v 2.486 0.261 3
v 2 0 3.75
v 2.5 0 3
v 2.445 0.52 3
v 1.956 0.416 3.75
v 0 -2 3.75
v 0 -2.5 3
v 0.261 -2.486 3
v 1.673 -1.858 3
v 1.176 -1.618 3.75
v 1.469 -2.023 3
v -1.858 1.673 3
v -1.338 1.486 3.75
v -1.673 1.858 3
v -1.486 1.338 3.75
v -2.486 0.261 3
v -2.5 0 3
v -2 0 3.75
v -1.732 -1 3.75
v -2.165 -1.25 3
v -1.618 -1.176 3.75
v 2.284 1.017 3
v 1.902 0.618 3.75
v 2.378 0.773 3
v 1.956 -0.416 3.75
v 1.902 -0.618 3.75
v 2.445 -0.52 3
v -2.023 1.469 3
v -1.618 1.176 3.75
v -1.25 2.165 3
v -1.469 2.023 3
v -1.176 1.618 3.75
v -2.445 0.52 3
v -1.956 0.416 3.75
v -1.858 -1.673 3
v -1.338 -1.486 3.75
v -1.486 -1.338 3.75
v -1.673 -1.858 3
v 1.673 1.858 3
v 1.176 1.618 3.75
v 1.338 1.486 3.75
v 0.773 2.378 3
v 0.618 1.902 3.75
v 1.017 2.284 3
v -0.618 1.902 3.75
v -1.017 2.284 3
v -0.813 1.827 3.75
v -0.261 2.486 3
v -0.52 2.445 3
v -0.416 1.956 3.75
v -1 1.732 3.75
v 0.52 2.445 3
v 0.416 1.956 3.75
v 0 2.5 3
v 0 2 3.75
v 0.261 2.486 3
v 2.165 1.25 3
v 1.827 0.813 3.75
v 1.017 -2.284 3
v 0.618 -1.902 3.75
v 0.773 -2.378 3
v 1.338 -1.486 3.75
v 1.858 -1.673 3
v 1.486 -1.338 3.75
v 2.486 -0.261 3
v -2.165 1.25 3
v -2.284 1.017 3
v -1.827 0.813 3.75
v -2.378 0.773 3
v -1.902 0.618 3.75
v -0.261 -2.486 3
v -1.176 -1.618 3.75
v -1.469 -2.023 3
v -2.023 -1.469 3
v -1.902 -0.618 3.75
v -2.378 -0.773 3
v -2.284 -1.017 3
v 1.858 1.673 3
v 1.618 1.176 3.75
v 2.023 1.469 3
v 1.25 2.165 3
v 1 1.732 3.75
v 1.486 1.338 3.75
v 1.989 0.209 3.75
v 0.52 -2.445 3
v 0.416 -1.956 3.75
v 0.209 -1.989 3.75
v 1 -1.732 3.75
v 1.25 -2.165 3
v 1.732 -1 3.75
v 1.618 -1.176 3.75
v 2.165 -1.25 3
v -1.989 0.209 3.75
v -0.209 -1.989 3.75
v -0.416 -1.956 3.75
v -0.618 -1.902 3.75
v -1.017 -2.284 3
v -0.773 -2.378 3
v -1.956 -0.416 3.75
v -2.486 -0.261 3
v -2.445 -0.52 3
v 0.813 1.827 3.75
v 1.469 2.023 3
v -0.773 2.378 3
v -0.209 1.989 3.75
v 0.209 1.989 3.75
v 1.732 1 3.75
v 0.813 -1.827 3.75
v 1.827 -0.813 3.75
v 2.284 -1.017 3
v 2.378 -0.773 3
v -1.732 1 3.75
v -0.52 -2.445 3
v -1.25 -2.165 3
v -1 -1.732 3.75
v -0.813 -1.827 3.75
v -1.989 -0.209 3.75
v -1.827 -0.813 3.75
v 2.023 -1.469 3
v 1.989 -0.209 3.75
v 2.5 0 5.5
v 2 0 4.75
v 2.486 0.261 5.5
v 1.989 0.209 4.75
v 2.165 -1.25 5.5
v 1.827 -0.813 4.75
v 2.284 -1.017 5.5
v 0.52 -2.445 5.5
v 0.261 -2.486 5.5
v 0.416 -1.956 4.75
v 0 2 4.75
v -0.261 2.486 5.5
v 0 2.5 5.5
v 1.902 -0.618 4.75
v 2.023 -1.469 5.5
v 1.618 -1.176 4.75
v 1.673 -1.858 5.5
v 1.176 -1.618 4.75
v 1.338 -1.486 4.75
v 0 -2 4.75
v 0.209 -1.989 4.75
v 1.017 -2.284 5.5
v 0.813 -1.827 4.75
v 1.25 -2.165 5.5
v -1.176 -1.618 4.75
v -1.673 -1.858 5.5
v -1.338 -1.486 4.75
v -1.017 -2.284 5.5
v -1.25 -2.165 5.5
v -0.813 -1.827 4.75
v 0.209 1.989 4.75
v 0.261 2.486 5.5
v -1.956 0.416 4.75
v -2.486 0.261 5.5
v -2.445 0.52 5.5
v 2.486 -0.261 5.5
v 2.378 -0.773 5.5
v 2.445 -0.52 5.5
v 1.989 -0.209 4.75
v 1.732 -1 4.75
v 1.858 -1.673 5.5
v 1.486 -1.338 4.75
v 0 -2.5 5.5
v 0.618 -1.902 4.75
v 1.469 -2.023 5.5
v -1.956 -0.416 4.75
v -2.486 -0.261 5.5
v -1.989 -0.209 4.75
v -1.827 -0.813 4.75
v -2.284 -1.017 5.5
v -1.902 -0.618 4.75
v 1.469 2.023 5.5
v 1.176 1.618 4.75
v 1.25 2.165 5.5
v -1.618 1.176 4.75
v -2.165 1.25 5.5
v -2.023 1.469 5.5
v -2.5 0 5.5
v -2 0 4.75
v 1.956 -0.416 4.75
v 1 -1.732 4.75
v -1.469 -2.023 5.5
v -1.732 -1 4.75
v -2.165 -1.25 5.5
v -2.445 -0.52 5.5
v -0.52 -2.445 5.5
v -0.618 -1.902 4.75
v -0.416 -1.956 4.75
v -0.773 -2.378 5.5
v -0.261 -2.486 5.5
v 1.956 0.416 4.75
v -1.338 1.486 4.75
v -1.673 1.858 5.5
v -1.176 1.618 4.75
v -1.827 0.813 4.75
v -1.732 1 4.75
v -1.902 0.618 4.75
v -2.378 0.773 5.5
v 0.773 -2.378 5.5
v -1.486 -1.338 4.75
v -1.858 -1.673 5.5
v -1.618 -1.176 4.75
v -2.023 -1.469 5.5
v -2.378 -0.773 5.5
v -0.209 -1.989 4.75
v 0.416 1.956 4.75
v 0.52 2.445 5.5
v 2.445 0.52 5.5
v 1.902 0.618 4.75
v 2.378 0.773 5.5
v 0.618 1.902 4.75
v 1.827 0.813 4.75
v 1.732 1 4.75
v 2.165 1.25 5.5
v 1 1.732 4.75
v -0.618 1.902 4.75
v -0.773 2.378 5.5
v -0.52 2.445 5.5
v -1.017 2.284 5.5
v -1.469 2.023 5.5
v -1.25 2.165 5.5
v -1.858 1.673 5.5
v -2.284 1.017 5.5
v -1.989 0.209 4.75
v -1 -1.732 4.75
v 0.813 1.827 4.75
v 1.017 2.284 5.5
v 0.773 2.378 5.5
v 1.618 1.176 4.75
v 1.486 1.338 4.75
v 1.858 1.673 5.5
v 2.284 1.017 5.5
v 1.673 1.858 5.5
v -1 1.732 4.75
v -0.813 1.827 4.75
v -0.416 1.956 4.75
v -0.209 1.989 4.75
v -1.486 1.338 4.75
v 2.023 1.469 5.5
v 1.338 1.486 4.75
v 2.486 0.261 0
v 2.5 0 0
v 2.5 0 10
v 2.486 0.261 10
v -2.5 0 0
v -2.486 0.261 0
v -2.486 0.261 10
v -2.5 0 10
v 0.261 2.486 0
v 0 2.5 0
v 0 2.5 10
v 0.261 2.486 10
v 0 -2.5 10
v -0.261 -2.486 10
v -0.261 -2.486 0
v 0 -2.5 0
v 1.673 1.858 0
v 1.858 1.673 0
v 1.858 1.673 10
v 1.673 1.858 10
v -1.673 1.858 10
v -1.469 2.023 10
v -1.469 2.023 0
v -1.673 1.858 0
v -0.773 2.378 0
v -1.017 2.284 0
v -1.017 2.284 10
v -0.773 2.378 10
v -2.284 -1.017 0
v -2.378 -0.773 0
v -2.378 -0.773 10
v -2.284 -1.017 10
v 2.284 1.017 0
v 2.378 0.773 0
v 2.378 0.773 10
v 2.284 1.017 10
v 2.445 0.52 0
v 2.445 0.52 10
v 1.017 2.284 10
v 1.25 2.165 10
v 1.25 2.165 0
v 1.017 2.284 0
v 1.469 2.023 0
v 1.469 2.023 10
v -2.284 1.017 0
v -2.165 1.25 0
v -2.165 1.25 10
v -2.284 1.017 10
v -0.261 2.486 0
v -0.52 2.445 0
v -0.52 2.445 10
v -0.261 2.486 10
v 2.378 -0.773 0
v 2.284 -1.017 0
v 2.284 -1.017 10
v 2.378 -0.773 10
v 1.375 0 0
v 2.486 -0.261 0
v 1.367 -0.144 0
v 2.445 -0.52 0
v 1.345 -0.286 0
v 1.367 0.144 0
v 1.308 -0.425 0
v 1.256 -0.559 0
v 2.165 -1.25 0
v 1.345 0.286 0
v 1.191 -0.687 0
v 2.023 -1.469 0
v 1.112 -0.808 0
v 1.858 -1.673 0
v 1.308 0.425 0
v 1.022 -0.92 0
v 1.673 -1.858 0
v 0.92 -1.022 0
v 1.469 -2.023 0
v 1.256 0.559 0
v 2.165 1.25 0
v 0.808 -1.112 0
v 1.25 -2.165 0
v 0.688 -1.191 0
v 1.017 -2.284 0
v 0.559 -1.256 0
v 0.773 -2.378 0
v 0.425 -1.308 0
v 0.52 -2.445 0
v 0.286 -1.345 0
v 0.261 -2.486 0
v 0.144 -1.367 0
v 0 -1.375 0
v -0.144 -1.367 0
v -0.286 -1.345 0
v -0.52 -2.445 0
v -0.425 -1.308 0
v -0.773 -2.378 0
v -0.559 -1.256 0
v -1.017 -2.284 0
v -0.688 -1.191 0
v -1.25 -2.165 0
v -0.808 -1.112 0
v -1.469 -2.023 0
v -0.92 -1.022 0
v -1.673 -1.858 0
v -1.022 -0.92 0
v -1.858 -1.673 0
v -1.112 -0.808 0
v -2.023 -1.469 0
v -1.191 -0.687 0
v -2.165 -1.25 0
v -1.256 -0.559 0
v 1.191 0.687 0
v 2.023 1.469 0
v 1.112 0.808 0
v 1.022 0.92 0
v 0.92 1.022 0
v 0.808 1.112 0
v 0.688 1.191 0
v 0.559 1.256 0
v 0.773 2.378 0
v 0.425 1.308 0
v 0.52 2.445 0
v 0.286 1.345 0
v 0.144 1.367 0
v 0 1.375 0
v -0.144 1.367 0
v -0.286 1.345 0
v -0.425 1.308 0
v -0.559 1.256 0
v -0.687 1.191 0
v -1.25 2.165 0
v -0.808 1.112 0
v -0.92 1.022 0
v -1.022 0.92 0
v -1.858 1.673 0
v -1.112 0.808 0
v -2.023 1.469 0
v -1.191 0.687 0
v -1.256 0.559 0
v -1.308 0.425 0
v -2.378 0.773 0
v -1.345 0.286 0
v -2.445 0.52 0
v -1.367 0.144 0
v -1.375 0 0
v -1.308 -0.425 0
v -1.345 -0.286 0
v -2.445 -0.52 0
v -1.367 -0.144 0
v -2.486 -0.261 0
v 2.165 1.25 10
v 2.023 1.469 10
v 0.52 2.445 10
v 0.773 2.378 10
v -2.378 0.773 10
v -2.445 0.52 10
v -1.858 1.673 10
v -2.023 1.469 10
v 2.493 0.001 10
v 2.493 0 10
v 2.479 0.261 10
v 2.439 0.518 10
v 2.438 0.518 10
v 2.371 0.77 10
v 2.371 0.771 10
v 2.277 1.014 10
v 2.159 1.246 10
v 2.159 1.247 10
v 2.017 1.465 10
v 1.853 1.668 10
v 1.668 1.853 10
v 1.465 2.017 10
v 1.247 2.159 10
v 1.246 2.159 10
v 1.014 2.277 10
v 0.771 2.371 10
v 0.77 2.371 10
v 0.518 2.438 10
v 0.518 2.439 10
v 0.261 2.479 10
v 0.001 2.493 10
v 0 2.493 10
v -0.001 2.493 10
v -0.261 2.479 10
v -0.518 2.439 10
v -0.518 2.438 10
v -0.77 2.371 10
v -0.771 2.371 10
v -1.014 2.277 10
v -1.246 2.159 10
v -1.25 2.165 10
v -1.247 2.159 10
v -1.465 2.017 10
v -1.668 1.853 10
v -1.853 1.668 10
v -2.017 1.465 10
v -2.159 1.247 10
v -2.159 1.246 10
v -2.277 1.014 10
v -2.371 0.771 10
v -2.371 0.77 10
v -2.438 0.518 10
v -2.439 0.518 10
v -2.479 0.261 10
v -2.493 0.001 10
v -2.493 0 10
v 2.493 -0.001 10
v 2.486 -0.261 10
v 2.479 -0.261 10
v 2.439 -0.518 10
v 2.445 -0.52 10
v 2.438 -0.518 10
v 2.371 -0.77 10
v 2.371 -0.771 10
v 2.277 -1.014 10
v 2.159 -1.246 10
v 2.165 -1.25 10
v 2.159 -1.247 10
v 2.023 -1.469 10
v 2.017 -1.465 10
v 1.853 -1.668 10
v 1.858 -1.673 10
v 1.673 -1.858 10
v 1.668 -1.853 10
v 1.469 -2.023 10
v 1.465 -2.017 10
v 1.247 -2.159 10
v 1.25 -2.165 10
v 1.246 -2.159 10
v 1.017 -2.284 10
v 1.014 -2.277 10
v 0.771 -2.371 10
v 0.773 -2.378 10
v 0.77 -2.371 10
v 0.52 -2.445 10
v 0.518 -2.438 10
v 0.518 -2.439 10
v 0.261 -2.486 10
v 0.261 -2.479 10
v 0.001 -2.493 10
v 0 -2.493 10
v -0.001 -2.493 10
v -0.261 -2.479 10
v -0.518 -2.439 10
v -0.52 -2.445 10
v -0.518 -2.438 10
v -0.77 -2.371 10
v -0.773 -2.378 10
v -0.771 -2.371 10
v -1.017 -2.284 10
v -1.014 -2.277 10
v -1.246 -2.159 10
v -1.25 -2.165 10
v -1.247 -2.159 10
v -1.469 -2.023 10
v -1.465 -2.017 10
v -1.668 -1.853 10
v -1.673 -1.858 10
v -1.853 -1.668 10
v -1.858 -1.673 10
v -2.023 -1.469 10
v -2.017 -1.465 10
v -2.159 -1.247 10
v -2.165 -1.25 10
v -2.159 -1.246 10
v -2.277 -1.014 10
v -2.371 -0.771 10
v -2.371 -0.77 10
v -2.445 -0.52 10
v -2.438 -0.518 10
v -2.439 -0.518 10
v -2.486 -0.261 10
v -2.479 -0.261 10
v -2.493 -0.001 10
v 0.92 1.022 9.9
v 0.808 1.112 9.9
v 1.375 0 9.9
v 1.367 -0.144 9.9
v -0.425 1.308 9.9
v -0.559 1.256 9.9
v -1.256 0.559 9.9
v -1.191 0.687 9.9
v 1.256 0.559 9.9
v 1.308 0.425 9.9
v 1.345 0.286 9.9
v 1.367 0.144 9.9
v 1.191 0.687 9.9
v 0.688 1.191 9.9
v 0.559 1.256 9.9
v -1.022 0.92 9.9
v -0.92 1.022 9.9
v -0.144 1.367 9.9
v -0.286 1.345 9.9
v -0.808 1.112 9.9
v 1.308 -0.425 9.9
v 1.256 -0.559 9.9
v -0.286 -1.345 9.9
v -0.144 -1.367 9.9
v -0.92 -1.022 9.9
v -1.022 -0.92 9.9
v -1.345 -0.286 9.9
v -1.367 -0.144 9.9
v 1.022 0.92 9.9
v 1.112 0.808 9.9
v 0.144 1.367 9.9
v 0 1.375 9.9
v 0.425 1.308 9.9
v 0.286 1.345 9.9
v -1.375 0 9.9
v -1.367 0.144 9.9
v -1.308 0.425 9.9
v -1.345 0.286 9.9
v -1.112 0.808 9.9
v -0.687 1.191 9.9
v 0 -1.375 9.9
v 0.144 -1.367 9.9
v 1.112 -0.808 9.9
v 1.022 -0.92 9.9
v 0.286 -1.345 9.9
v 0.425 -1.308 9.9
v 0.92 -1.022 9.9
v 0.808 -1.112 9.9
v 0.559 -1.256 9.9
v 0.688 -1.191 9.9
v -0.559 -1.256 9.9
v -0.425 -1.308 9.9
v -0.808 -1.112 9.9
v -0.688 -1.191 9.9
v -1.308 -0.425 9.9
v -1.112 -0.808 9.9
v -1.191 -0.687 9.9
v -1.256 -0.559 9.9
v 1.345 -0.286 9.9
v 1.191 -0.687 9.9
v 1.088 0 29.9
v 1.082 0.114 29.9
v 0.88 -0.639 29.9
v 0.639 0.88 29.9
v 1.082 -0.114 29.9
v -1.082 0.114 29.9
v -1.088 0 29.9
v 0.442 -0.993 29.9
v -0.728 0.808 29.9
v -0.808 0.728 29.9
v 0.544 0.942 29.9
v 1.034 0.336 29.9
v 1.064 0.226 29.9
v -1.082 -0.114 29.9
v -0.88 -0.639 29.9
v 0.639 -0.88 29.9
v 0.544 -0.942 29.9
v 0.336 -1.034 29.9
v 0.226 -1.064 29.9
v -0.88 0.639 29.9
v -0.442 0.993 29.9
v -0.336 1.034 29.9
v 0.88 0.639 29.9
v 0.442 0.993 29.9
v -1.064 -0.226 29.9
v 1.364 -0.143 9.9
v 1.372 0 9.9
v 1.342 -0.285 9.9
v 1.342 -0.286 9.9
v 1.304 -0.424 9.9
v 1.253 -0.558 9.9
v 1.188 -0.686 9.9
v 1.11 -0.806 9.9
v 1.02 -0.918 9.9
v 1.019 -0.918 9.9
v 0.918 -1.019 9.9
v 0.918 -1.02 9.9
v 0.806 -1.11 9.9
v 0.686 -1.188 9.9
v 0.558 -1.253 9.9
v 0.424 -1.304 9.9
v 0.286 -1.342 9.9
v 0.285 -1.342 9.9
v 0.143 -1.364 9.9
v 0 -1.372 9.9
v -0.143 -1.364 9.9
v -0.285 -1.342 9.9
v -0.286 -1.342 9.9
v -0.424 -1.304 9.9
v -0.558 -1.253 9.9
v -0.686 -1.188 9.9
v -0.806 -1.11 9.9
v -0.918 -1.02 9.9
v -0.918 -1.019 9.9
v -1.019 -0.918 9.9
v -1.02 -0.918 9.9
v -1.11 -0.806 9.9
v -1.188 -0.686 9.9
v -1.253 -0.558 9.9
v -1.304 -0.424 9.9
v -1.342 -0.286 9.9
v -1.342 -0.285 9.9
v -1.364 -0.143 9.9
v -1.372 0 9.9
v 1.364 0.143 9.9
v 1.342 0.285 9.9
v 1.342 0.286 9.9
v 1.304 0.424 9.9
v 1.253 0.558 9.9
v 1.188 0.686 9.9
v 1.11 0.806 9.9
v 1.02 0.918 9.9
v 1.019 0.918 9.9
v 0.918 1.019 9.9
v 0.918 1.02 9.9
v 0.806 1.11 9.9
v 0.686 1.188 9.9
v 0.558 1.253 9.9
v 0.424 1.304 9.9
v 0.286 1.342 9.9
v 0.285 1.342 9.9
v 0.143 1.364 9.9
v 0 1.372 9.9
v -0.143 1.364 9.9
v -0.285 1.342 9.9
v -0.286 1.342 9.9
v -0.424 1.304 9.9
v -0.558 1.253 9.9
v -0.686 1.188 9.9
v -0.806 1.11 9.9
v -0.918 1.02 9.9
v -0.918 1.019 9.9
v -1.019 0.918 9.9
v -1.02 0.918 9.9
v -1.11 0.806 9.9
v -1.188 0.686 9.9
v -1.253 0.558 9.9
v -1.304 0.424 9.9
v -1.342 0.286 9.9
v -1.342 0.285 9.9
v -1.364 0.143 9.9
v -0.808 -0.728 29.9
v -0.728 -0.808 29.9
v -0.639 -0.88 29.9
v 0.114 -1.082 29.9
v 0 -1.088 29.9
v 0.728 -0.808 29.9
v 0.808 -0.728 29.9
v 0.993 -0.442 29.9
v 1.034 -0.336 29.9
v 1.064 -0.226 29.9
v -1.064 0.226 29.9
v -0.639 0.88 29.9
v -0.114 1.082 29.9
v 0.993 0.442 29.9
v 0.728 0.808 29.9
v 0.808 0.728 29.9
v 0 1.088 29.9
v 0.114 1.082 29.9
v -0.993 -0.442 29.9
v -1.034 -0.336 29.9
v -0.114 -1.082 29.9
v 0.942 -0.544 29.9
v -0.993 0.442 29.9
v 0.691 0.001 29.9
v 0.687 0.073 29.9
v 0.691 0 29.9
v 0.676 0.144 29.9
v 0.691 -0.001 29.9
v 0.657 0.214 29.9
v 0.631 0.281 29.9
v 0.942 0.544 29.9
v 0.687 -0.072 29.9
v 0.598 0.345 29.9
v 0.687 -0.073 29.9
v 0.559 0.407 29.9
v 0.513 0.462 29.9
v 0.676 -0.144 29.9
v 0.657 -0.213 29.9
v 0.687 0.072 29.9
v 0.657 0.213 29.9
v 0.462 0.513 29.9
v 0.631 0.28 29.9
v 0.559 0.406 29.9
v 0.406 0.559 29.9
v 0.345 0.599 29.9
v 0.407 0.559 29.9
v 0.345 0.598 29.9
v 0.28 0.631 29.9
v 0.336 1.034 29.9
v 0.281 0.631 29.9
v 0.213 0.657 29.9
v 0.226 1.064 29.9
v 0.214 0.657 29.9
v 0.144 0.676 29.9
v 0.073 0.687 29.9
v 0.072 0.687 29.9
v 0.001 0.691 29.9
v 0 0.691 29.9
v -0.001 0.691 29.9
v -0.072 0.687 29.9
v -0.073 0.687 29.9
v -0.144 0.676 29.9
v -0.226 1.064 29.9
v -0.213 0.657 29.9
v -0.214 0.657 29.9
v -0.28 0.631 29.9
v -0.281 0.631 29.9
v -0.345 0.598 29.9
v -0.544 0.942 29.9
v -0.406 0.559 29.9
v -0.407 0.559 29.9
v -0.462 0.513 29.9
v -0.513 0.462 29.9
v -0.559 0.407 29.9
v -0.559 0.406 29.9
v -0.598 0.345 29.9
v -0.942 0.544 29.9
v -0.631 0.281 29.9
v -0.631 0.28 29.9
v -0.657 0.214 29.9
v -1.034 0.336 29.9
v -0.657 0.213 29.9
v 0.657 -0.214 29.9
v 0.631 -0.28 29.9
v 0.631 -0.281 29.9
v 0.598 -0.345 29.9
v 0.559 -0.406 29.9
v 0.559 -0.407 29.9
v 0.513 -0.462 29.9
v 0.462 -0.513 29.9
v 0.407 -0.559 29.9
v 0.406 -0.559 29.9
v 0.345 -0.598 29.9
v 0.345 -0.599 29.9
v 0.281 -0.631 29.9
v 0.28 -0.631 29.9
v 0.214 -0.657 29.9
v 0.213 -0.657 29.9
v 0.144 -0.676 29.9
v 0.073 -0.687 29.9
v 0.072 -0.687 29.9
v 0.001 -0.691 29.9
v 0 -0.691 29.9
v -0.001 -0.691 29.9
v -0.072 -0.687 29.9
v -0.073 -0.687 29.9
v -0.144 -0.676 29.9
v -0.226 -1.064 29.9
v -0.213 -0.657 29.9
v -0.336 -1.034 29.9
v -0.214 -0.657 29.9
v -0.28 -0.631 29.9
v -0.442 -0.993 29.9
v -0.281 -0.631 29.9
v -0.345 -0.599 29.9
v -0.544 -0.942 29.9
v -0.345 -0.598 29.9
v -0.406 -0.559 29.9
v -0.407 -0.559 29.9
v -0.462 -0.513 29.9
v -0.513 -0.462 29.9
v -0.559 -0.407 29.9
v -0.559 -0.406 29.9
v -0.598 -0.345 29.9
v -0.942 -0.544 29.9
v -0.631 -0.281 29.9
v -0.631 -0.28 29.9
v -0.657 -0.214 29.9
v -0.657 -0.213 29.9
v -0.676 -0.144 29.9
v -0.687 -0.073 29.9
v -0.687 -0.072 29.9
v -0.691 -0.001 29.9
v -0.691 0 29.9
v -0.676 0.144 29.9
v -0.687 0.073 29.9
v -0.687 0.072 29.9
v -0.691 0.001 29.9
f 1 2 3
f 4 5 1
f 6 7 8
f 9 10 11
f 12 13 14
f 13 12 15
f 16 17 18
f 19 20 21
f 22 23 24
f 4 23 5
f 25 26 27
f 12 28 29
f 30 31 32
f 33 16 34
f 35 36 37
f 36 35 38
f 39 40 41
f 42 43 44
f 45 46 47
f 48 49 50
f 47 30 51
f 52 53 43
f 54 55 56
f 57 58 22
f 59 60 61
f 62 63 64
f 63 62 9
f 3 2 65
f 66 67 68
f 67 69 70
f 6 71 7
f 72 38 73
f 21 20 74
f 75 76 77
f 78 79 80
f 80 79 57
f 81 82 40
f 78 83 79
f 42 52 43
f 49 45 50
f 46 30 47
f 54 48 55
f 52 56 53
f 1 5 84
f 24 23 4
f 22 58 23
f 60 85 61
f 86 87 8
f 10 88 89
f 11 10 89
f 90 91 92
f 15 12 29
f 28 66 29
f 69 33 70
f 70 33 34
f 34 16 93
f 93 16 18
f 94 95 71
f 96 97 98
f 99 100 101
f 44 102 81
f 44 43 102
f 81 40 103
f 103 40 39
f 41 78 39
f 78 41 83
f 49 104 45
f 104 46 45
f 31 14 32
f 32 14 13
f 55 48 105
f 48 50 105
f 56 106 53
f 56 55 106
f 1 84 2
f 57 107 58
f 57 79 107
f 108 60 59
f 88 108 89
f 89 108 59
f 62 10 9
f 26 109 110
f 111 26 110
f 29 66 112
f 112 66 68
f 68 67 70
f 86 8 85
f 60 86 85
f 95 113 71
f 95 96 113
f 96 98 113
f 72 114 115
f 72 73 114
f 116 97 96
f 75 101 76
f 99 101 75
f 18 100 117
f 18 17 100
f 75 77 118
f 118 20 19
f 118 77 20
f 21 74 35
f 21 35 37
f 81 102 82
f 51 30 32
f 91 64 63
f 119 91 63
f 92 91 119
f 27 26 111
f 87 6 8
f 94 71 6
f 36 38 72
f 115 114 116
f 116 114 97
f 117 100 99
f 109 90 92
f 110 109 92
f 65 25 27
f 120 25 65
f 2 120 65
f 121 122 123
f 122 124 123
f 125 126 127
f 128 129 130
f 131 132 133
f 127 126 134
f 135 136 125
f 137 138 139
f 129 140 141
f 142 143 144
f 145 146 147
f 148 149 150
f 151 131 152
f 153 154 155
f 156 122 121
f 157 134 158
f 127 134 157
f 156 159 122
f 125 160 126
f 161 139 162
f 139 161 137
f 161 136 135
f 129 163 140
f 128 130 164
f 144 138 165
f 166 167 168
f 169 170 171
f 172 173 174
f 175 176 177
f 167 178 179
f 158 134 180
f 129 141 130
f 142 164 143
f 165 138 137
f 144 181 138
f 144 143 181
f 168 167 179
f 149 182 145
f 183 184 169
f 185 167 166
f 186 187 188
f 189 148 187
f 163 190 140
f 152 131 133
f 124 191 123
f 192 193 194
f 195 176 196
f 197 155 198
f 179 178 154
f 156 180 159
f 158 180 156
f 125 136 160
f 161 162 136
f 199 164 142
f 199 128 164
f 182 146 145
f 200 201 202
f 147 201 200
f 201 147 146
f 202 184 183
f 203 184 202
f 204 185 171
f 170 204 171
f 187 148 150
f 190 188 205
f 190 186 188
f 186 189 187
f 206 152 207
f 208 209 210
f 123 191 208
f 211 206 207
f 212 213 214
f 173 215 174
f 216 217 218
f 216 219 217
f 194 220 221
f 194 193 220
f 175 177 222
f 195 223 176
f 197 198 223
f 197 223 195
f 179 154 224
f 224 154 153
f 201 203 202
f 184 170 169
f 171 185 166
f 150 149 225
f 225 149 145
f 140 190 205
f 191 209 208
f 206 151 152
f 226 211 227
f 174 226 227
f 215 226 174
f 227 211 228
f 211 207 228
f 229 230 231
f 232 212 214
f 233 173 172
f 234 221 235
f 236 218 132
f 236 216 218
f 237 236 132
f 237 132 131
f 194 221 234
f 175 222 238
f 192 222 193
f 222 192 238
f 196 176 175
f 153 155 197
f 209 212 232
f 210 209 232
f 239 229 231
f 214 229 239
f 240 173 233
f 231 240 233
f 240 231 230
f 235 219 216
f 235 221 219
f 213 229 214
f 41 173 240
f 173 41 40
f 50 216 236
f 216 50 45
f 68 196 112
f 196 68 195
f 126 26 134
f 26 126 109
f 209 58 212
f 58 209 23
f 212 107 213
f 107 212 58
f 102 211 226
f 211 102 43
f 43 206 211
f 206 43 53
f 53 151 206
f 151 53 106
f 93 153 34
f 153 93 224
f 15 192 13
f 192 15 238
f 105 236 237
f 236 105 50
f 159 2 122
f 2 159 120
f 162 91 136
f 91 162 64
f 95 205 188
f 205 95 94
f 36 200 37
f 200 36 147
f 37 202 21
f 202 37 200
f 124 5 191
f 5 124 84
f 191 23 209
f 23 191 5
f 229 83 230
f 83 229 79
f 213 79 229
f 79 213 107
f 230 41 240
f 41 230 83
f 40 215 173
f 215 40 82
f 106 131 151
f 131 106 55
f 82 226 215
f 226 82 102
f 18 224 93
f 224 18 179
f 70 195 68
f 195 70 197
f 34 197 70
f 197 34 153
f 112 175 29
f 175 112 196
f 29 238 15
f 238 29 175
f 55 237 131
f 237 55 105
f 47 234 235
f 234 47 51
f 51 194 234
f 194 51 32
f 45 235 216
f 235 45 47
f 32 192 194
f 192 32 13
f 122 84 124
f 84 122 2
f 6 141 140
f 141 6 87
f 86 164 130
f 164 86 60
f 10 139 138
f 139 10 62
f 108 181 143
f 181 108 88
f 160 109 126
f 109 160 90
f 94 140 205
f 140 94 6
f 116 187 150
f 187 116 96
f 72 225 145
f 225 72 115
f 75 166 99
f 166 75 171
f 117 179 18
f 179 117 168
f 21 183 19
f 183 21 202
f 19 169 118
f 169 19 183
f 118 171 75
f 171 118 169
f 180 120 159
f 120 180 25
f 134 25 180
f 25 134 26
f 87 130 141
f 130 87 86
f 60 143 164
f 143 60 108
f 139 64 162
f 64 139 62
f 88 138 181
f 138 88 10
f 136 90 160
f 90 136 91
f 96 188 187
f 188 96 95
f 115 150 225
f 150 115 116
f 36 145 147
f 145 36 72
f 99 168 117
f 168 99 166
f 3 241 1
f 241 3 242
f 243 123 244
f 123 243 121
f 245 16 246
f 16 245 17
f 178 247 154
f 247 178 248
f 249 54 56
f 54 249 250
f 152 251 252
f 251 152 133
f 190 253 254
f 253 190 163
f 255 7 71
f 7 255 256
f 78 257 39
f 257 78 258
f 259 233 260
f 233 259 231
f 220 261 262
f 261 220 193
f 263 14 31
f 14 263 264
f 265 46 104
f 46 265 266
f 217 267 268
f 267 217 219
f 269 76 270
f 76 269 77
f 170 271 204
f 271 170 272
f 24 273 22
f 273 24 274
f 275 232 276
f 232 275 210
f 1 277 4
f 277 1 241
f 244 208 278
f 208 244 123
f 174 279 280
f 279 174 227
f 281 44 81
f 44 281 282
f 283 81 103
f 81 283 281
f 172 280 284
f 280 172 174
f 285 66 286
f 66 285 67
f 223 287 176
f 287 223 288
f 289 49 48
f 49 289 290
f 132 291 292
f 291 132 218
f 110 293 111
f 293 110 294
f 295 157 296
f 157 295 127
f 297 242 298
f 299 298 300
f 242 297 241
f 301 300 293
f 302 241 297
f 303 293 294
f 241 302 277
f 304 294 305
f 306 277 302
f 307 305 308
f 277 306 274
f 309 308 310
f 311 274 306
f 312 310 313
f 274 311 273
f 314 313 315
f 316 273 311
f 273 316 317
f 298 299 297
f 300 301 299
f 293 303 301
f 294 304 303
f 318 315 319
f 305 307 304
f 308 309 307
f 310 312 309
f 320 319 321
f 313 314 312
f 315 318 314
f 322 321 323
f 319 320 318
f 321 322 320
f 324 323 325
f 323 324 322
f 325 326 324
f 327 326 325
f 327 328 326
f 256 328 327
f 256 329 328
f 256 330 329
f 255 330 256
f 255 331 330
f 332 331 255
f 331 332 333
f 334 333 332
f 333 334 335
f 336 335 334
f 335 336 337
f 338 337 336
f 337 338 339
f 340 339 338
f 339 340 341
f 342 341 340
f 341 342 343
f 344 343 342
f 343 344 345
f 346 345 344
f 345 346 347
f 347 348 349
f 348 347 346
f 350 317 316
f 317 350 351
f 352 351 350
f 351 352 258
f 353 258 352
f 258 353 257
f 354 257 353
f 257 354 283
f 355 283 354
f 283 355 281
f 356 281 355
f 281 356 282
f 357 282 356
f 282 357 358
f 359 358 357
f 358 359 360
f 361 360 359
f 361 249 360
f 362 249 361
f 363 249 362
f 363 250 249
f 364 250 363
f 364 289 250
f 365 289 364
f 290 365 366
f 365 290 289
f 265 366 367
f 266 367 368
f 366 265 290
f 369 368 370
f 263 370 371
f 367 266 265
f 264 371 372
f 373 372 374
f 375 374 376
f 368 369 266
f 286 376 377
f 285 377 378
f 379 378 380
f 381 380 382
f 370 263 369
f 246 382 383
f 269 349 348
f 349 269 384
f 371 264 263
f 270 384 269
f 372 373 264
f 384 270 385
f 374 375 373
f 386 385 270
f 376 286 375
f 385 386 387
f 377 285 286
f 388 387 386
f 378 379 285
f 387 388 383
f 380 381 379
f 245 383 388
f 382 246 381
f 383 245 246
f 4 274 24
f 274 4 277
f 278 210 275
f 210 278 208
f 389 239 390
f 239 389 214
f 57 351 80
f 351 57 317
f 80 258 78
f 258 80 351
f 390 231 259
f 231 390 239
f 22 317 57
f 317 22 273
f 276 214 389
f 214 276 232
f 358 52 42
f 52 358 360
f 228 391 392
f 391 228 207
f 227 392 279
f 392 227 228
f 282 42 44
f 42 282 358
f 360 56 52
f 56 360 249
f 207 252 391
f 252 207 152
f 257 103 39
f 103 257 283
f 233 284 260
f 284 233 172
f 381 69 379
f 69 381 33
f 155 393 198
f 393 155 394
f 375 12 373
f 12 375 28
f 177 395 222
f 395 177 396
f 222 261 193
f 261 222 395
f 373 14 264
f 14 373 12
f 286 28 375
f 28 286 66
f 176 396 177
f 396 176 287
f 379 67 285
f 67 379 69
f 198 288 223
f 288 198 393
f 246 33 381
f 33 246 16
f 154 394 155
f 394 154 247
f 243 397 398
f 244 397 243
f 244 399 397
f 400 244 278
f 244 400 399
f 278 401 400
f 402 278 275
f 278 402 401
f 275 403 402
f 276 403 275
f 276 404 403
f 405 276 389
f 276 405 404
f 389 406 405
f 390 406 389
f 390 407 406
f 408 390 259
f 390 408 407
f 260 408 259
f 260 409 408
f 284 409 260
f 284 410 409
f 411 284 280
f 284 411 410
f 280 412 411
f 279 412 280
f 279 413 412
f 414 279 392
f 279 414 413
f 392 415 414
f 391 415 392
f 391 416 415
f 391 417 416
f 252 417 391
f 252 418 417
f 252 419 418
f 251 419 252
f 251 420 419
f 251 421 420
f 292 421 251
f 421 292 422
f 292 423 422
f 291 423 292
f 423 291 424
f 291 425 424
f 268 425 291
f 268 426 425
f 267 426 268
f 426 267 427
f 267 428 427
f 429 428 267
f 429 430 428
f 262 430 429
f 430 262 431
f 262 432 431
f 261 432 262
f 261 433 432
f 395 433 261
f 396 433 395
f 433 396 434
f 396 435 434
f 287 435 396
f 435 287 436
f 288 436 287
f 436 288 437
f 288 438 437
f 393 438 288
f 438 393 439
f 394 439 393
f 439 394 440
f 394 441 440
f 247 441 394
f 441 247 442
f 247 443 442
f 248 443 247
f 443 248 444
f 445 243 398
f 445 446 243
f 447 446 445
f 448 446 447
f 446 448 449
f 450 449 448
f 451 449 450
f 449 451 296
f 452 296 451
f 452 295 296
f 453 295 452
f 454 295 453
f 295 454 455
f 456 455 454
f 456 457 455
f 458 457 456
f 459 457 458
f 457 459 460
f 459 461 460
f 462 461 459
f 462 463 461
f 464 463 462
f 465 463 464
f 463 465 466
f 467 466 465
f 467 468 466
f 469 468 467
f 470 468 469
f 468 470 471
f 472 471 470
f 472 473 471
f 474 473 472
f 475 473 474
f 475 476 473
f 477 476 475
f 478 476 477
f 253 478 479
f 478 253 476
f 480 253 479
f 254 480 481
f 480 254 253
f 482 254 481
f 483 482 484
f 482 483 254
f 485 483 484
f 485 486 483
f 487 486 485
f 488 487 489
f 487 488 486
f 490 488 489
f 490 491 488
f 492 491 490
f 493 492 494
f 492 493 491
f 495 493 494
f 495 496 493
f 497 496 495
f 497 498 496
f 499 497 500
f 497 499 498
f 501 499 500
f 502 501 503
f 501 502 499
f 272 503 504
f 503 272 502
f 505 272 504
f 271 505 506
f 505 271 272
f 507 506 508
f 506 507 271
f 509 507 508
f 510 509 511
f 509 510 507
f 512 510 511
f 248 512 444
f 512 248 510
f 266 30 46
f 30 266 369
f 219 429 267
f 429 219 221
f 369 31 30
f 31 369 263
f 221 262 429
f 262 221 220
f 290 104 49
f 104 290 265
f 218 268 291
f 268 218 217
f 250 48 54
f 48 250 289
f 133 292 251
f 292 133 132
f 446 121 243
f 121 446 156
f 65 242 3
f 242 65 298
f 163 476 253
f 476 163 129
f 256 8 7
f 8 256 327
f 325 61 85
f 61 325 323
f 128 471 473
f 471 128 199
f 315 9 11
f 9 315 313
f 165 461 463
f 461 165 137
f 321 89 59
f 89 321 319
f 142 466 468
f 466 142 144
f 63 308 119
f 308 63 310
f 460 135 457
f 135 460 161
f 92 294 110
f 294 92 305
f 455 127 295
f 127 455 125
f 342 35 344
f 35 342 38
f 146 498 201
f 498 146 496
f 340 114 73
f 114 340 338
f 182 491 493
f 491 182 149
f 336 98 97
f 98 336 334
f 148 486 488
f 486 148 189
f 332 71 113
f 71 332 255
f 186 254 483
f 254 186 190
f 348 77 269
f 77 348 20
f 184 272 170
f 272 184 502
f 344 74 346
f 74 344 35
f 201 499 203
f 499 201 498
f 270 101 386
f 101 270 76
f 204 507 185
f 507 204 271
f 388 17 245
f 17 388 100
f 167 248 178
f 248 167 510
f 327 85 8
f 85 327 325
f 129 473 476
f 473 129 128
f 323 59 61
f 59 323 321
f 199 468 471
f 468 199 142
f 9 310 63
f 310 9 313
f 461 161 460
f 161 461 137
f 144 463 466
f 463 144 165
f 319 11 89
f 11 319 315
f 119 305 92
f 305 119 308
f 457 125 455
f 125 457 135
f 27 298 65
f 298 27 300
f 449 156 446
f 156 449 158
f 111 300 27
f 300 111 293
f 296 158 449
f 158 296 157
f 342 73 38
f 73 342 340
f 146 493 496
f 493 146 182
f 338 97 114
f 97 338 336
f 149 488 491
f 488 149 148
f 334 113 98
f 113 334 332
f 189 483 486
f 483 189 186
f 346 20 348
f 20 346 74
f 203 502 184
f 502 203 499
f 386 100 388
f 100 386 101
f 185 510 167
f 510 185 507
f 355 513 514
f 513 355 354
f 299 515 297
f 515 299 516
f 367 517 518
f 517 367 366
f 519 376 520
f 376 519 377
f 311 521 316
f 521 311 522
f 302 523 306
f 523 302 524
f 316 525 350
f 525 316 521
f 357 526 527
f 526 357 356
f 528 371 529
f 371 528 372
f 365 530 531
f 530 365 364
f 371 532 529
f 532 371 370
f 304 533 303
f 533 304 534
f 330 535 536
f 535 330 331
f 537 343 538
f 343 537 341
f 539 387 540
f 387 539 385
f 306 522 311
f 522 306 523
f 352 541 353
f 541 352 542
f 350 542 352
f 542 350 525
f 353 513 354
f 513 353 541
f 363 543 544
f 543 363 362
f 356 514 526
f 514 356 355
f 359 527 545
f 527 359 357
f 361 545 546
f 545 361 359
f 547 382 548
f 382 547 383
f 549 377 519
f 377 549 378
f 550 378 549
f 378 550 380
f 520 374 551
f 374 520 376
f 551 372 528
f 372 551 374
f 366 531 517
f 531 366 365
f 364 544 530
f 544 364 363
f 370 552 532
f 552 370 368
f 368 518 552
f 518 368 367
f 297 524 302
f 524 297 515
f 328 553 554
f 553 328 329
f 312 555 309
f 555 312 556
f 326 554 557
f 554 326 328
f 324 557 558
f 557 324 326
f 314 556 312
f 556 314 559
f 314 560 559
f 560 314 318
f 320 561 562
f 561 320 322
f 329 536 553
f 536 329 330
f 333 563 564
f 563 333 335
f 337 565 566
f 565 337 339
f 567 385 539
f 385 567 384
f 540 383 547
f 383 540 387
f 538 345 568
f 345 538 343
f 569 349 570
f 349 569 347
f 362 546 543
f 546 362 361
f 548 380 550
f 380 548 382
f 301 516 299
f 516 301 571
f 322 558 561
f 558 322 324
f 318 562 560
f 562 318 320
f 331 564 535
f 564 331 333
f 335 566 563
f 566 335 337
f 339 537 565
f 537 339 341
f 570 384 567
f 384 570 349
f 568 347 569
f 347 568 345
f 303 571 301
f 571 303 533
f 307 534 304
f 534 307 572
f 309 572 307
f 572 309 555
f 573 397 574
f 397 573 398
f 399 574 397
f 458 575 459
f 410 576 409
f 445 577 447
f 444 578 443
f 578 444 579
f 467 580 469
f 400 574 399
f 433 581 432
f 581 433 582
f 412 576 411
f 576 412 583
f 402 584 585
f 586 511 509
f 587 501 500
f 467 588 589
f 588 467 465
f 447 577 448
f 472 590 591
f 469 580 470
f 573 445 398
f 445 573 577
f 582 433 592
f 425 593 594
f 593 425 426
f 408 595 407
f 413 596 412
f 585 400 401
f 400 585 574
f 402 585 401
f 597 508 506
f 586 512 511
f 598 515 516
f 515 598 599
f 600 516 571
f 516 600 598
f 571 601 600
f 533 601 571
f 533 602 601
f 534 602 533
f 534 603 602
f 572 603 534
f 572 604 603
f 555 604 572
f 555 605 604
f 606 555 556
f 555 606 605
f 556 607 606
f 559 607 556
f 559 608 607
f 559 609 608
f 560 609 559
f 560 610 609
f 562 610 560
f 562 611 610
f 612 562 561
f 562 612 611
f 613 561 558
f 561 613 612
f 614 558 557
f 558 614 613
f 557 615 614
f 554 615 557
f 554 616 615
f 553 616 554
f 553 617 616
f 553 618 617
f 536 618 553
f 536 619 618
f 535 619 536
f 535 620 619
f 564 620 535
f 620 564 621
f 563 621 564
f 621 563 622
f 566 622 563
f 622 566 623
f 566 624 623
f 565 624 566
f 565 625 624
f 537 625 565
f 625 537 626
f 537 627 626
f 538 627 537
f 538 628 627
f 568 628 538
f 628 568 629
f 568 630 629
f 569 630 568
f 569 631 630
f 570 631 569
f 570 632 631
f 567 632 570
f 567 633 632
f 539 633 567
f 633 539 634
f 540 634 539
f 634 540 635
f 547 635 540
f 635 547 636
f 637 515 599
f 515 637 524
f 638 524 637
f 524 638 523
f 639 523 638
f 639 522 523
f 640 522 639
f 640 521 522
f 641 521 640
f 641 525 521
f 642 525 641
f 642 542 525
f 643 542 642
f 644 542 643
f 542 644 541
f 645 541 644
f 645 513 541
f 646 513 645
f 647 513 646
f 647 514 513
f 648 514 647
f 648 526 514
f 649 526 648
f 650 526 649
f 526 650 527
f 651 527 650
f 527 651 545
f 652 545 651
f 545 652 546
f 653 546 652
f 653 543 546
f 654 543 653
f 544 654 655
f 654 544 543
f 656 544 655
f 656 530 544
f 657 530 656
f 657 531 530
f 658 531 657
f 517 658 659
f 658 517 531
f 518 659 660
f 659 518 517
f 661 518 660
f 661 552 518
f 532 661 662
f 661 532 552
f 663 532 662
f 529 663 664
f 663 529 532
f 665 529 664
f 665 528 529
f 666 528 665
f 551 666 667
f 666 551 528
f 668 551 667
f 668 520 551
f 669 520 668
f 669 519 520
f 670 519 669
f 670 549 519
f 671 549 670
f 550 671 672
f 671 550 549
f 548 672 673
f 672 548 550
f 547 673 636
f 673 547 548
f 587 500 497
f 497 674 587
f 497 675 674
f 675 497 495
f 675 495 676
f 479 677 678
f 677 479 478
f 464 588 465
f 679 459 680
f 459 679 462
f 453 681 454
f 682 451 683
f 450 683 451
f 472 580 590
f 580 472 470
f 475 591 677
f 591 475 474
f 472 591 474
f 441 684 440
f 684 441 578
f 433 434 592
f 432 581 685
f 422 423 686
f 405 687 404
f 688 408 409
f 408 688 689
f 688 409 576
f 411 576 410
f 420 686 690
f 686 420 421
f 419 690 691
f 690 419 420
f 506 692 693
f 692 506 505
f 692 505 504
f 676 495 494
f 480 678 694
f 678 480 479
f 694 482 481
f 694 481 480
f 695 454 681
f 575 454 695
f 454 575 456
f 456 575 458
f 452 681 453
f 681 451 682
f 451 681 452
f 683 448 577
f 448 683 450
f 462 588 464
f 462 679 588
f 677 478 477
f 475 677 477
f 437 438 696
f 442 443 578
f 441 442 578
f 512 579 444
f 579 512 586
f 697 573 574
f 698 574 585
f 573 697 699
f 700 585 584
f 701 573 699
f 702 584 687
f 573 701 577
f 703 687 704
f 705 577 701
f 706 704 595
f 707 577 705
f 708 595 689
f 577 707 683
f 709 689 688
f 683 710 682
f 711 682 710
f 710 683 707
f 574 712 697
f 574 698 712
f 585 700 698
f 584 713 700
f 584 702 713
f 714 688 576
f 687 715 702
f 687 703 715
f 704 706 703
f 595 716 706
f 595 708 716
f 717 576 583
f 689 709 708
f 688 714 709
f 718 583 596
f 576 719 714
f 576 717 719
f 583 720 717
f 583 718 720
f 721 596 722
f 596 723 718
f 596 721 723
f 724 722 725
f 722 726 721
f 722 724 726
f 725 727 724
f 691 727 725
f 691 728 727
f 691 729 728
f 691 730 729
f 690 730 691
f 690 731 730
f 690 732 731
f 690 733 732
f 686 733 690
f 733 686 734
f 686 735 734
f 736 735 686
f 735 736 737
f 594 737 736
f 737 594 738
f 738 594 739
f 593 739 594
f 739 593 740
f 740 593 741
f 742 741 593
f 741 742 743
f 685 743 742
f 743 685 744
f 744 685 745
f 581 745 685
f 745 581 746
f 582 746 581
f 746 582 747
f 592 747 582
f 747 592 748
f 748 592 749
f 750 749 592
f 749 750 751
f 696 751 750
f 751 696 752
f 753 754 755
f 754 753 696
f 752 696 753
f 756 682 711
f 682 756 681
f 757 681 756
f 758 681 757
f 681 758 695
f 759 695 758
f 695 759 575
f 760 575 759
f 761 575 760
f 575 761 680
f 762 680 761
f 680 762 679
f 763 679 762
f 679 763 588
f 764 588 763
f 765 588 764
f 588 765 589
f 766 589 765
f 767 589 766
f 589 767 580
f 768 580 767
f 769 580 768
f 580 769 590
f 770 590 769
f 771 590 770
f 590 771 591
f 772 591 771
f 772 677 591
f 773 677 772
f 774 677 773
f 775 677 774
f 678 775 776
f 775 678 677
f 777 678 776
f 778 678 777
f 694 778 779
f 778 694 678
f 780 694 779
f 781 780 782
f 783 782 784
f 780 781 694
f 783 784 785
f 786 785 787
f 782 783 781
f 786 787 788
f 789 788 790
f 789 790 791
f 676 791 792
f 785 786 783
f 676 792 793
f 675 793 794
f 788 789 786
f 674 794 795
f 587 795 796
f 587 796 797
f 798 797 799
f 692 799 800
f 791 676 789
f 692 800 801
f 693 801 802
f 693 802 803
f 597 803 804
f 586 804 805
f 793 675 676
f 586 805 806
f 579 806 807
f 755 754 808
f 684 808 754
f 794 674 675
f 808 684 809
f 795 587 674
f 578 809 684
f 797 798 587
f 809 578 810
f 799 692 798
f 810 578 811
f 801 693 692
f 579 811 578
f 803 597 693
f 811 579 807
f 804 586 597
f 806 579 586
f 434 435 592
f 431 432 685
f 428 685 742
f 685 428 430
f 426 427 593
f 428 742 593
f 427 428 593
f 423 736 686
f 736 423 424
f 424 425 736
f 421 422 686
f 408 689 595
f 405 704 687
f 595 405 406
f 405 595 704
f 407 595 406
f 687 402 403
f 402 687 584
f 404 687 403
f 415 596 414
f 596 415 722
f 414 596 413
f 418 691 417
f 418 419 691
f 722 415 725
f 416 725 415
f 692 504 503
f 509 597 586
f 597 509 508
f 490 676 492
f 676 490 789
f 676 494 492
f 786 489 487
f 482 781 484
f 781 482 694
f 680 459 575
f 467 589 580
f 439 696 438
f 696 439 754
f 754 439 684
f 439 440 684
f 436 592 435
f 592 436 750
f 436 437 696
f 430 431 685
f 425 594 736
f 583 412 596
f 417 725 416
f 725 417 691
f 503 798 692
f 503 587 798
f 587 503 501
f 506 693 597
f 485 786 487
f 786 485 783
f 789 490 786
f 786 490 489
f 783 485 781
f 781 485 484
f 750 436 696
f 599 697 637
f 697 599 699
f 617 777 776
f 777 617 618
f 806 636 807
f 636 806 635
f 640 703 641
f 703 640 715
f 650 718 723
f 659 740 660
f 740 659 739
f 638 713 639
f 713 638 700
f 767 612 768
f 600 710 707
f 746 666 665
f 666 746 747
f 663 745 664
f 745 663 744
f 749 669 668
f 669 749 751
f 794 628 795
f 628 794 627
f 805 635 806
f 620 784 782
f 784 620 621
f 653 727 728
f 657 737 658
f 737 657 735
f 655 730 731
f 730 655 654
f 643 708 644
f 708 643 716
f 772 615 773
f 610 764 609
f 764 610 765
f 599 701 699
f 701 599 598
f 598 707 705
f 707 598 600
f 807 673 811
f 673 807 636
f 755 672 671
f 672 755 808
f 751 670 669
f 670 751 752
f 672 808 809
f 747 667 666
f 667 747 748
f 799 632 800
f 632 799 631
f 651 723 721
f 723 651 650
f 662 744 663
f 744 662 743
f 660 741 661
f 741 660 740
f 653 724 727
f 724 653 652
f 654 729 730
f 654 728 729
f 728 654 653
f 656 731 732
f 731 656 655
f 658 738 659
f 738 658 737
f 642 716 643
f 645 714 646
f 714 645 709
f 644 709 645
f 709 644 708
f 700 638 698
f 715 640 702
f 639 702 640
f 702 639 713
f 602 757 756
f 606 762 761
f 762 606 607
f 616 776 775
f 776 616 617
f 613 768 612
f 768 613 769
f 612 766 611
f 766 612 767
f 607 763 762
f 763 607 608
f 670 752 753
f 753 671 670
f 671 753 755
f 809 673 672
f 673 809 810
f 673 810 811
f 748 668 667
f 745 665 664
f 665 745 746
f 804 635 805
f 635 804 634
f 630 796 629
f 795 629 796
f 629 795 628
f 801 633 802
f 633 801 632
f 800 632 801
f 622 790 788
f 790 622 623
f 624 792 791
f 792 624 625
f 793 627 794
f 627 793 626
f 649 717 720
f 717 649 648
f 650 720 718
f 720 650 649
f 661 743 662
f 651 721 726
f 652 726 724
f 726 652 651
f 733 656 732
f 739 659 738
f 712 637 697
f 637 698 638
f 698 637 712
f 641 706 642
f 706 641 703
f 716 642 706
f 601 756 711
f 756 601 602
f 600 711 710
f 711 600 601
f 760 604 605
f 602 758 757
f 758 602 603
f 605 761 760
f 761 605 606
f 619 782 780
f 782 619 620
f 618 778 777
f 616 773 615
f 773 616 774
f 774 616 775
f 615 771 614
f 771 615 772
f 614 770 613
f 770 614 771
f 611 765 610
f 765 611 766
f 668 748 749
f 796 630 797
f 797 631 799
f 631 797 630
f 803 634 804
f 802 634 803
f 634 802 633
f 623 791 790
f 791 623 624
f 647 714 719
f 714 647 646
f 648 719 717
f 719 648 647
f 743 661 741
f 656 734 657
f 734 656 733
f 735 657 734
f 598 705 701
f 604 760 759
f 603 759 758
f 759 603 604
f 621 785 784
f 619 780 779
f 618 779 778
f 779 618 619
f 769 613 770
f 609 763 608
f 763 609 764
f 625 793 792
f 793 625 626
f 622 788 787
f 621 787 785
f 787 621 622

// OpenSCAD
// ZD5 airgun needle
//
// Copyright (C) 2016, Jason S. McMullan <jason.mcmullan@gmail.com>
// All rights reserved.
//
// Licensed under the MIT License:
//
// Permission is hereby granted, free of charge, to any person obtaining
// a copy of this software and associated documentation files (the "Software"),
// to deal in the Software without restriction, including without limitation
// the rights to use, copy, modify, merge, publish, distribute, sublicense,
// and/or sell copies of the Software, and to permit persons to whom the
// Software is furnished to do so, subject to the following conditions:
//
// The above copyright notice and this permission notice shall be included
// in all copies or substantial portions of the Software.
//
// THE SOFTWARE IS PROVIDED "AS IS", WITHOUT WARRANTY OF ANY KIND, EXPRESS OR
// IMPLIED, INCLUDING BUT NOT LIMITED TO THE WARRANTIES OF MERCHANTABILITY,
// FITNESS FOR A PARTICULAR PURPOSE AND NONINFRINGEMENT. IN NO EVENT SHALL THE
// AUTHORS OR COPYRIGHT HOLDERS BE LIABLE FOR ANY CLAIM, DAMAGES OR OTHER
// LIABILITY, WHETHER IN AN ACTION OF CONTRACT, TORT OR OTHERWISE, ARISING
// FROM, OUT OF OR IN CONNECTION WITH THE SOFTWARE OR THE USE OR OTHER
// DEALINGS IN THE SOFTWARE.
//
// All units in mm

// Cylinder faces
fn = 60;

barb_od = 5;
barb_id = 2.75;

nozzle = 0.4;

module zd5_hose_barb(height = 10)
{
    barb_notch_diameter = 4;
    barb_notch_width = 2.5;
    barb_notch_offset = 3;
    barb_notch_ramp = (barb_notch_width - 1) / 2;
    
    difference() {
        cylinder(d = barb_od, h = height, $fn = fn);
        translate([0, 0, -0.1])
            cylinder(d = barb_id, h = 0.1 + height + 0.1, $fn = fn);
        translate([0, 0, barb_notch_offset])
            difference() {
                cylinder(d = barb_od + 0.2, h = barb_notch_width, $fn = fn);
                
                union() {
                    cylinder(d1 = barb_od, d2 = barb_notch_diameter, h = barb_notch_ramp, $fn = fn);
                    translate([0, 0, barb_notch_width - barb_notch_ramp])
                        cylinder(d1 = barb_notch_diameter, d2 = barb_od, h = barb_notch_ramp, $fn = fn);
                    translate([0, 0, -0.2]) cylinder(d = barb_notch_diameter, h = barb_notch_width + 0.4, $fn = fn);
                }
            }
    }
    translate([0, 0, height * 0.99]) children();
}

module zd5_needle()
{
    zd5_hose_barb() {
        difference() {
            cylinder(d1 = barb_od, d2 = barb_id/2 + nozzle*2, h = 20, $fn = fn);
            translate([0, 0, -0.1]) cylinder(d1 = barb_id, d2 = barb_id/2, h = 20 + 0.2, $fn = fn);
        }
    }
}

zd5_needle();           
    
// vim: set shiftwidth=4 expandtab: //
